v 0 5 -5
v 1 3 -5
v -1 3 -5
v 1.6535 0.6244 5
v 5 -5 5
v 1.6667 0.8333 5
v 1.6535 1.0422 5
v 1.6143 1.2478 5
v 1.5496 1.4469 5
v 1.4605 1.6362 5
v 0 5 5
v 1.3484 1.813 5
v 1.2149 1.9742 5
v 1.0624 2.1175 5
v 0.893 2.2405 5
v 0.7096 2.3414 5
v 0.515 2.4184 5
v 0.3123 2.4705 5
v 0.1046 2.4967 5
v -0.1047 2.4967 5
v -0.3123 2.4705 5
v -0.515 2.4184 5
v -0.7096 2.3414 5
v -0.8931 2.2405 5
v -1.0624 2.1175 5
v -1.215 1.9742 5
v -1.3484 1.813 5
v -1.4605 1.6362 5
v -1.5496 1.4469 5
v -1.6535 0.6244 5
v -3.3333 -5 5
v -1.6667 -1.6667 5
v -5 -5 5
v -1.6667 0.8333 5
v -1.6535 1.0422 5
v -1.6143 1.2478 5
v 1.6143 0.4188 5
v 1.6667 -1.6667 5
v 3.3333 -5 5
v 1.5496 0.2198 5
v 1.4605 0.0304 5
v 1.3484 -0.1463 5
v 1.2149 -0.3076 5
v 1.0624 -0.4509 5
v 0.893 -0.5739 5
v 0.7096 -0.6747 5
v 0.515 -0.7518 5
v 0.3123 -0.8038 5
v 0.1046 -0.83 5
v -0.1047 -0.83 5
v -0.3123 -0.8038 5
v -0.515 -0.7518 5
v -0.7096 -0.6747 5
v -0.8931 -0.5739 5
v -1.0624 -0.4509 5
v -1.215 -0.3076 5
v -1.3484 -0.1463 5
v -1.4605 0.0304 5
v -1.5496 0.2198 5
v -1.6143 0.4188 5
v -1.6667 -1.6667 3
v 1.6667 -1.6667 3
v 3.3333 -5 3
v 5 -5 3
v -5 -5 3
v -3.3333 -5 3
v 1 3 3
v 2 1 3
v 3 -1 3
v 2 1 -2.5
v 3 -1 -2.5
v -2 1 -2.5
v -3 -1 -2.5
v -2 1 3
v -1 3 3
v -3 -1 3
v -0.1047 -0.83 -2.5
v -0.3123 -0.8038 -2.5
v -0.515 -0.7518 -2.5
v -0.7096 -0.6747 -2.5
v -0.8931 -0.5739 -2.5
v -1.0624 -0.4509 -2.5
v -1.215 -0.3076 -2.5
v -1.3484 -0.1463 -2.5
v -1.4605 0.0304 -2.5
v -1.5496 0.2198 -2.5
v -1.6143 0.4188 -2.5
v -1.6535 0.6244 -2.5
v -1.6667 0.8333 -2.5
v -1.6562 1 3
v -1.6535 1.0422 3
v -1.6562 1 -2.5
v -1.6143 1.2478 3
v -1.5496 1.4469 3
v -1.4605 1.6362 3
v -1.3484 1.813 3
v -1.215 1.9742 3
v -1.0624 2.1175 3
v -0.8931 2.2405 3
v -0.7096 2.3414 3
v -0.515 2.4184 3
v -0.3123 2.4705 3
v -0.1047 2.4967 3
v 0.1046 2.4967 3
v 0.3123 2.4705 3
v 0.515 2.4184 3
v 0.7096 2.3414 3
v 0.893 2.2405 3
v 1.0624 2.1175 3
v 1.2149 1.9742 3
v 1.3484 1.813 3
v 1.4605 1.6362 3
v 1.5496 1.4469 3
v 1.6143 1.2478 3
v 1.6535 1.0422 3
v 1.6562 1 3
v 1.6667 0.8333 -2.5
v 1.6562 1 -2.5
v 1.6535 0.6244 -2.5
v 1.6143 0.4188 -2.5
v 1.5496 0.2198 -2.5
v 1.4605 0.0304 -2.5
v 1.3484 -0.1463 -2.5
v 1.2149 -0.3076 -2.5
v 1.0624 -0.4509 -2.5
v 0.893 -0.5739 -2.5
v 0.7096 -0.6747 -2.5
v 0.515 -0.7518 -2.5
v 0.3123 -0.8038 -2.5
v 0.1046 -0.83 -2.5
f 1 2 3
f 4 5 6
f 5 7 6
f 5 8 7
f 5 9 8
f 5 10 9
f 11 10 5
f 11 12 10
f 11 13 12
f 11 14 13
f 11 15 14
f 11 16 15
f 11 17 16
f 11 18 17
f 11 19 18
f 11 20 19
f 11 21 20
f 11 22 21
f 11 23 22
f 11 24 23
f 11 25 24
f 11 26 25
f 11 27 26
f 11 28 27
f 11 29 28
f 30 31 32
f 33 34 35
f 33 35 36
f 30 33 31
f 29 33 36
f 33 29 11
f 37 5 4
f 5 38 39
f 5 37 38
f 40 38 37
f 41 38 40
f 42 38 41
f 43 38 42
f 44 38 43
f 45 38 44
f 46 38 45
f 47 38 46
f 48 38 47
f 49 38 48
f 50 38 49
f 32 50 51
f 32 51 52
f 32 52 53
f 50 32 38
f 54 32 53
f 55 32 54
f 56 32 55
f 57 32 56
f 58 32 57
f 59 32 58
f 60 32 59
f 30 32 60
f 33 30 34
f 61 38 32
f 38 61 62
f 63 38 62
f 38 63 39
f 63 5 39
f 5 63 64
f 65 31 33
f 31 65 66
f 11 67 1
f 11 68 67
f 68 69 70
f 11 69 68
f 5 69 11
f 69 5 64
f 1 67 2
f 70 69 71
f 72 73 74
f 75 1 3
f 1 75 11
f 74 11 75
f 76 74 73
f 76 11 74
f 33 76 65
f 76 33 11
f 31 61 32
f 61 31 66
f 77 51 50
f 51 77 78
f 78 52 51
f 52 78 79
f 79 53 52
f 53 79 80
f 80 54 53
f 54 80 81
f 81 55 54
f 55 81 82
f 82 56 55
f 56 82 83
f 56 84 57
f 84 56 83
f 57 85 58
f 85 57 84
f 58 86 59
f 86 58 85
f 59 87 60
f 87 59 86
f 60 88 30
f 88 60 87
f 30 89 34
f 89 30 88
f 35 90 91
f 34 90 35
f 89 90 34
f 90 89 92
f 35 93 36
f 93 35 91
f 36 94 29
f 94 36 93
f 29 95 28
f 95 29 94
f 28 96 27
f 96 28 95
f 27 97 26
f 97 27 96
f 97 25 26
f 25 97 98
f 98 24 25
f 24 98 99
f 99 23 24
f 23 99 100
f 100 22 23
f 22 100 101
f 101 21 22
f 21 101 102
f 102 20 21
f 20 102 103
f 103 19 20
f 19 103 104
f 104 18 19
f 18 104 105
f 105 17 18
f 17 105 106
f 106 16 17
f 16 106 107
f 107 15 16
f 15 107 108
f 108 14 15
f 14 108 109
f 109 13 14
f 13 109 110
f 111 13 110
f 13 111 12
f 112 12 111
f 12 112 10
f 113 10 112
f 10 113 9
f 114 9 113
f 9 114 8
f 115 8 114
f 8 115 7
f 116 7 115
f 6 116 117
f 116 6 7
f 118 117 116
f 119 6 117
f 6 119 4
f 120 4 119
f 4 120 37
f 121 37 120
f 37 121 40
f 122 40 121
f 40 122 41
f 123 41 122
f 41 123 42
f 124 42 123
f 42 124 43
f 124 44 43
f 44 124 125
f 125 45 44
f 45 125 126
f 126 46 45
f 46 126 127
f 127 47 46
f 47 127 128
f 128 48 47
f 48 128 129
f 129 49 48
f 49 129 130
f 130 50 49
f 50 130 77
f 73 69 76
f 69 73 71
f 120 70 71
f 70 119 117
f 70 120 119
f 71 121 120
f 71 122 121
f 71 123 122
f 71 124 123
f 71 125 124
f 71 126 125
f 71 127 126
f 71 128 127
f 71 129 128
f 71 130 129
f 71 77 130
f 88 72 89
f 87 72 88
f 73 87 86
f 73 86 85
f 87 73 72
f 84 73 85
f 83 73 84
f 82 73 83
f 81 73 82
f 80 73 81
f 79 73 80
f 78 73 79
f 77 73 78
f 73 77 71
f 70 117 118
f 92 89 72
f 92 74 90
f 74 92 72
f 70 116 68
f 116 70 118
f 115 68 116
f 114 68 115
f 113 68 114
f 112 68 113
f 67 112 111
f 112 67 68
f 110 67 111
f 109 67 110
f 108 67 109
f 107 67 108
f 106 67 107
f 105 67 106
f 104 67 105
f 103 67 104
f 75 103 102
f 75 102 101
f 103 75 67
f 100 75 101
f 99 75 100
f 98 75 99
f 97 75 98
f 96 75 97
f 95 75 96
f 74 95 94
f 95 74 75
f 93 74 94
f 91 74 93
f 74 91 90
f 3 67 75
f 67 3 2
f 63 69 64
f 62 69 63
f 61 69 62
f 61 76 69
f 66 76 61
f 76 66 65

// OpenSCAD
// Generated by SolidPython 1.1.3 on 2025-02-25 01:33:35
$fn=50;


intersection() {
	translate(v = [-5.0000000000, -5.0000000000, -5.0000000000]) {
		linear_extrude(height = 10) {
			difference() {
				polygon(points = [[0, 0], [5.0000000000, 10], [10, 0], [8.3333333333, 0], [6.6666666667, 3.3333333333], [3.3333333333, 3.3333333333], [1.6666666667, 0]]);
				translate(v = [5.0000000000, 5.8333333333]) {
					circle(r = 1.6666666667);
				}
			}
		}
	}
	rotate(a = 90, v = [0, 1, 0]) {
		translate(v = [-5.0000000000, -5.0000000000, -5.0000000000]) {
			linear_extrude(height = 10) {
				polygon(points = [[0, 0], [2.0000000000, 0], [2.0000000000, 4.0000000000], [7.5000000000, 4.0000000000], [7.5000000000, 6.0000000000], [2.0000000000, 6.0000000000], [2.0000000000, 8.0000000000], [10, 8.0000000000], [10, 10], [0, 10]]);
			}
		}
	}
}
/***********************************************
*********      SolidPython code:      **********
************************************************
 
from solid import *
from solid.utils import *

import math
import matplotlib.pyplot as plt
import subprocess
import os
import grok_letters as grok
import grok_think as grok_think
import letters as let
import o1_letters as o1

def arc_points(radius, start_angle, end_angle, center=[0,0], num_points=50):
    angles = [start_angle + i * (end_angle - start_angle) / (num_points - 1)
              for i in range(num_points)]
    points = [
        (center[0] + radius * math.cos(math.radians(angle)),
         center[1] + radius * math.sin(math.radians(angle)))
        for angle in angles
    ]
    return points

class Hole:
    def __init__(self, radius, x, y):
        """
        Hole defined by:
        :param x: x dimension for center point of the circle as a ratio of letter height
        :param y: y dimension for center point of the circle as a ratio of letter height
        :param radius: radius of circle as a ratio of letter height
        """
        self.x = x
        self.y = y
        self.radius = radius

class Letter2D:
    def __init__(self, letter, scale):
        self.letter = letter
        self.scale = scale
        self.shape = self.generate()
    
    def get_letter_points(self):
        points = getattr(let, self.letter)
        # points = getattr(o1, self.letter)
        # points = getattr(grok, self.letter)
        scaled_points = [(point[0] * self.scale, point[1] * self.scale) for point in points]
        return scaled_points

    def get_letter_holes(self):
        holes = []
        if self.letter == "A": 
            holes = [Hole(1/6, 1/2, 7/12)]
        if self.letter == "B":
            holes = [Hole(1/6, 1/2, 3/4), Hole(1/6, 1/2, 1/4)]
        if self.letter == "D":
            holes = [Hole(1/3, 1/2, 1/2)]

        scaled_holes = [Hole(hole.radius*self.scale, hole.x*self.scale, hole.y*self.scale) for hole in holes]
        return scaled_holes

    
    def generate(self):
        shape = polygon(points=self.get_letter_points())
        holes = self.get_letter_holes()

        if holes:
            for hole in holes:
                circle_hole = circle(r=hole.radius)
                positioned_hole = translate([hole.x, hole.y])(circle_hole)
                shape = difference()(shape, positioned_hole)
        return shape
    

    def render(self):
        scad_render_to_file(self.shape, f"output/{self.name}.scad", file_header='$fn=50;')
        subprocess.run(["C:\\Program Files\\OpenSCAD\\openscad.exe", "-o", f"output\\{self.name}.stl", f"output\\{self.name}.scad"])


class TwoLetter3D:
    def __init__(self, height, letterA, letterB=None):
        self.height = height
        self.letterA = letterA
        self.letterB = letterB
    

    def generate_3d_letter(self, letter):
        letter = letter.upper()
        # TODO: add catch here for is letter is not a letter
        shape = Letter2D(letter, self.height).generate()
        shape_3d = linear_extrude(height=self.height)(shape)
        centered_shape_3d = translate([-self.height/2, -self.height/2, -self.height/2])(shape_3d)
        return centered_shape_3d


    def render(self):
        letterA3D = self.generate_3d_letter(self.letterA)

        if self.letterB:
            letterB3D = self.generate_3d_letter(self.letterB)
            letterB3D = rotate(a=90, v=[0,1,0])(letterB3D)

            combined = intersection()(letterA3D, letterB3D)
            file_name = self.letterA + self.letterB
            scad_render_to_file(combined, f"output/{file_name}.scad", file_header='$fn=50;')
            subprocess.run(["C:\\Program Files\\OpenSCAD\\openscad.exe", "-o", f"output\\{file_name}.stl", f"output\\{file_name}.scad"])
            return
        else:
            # file_name = "o1_" + self.letterA
            # file_name = "grok_think_" + self.letterA
            file_name = self.letterA
            # file_name = "grok_" + self.letterA
            scad_render_to_file(letterA3D, f"output/{file_name}.scad", file_header='$fn=50;')
            subprocess.run(["C:\\Program Files\\OpenSCAD\\openscad.exe", "-o", f"output\\{file_name}.stl", f"output\\{file_name}.scad"])
            # subprocess.run(["openscad", "-o", f"output\\{file_name}.png", f"output\\{file_name}.scad", "--imgsize=800,600", "--autocenter"])
            subprocess.run(["openscad", "-o", f"output\\{file_name}.png", f"output\\{file_name}.scad", "--imgsize=800,600", "--camera=0,0,30,0,0,0", "--viewall", "--autocenter", "--projection=o"])
            os.remove(f"output/{file_name}.scad")
            return
                


if __name__ == "__main__":
    os.makedirs("output", exist_ok=True)

    # # Generate a letter
    # letter = input()
    # shape = TwoLetter3D(10, letter)
    # shape.render()
    
    letters = [chr(x) for x in range(ord('A'), ord('j') + 1)]

    # Generate all combos
    for letter in letters:
        for other_letter in letters:
            shape = TwoLetter3D(10, letter, other_letter)
            shape.render()

    # # Generate all letters
    # for letter in letters:
    #     shape = TwoLetter3D(10, letter)
    #     shape.render()
 
 
************************************************/
